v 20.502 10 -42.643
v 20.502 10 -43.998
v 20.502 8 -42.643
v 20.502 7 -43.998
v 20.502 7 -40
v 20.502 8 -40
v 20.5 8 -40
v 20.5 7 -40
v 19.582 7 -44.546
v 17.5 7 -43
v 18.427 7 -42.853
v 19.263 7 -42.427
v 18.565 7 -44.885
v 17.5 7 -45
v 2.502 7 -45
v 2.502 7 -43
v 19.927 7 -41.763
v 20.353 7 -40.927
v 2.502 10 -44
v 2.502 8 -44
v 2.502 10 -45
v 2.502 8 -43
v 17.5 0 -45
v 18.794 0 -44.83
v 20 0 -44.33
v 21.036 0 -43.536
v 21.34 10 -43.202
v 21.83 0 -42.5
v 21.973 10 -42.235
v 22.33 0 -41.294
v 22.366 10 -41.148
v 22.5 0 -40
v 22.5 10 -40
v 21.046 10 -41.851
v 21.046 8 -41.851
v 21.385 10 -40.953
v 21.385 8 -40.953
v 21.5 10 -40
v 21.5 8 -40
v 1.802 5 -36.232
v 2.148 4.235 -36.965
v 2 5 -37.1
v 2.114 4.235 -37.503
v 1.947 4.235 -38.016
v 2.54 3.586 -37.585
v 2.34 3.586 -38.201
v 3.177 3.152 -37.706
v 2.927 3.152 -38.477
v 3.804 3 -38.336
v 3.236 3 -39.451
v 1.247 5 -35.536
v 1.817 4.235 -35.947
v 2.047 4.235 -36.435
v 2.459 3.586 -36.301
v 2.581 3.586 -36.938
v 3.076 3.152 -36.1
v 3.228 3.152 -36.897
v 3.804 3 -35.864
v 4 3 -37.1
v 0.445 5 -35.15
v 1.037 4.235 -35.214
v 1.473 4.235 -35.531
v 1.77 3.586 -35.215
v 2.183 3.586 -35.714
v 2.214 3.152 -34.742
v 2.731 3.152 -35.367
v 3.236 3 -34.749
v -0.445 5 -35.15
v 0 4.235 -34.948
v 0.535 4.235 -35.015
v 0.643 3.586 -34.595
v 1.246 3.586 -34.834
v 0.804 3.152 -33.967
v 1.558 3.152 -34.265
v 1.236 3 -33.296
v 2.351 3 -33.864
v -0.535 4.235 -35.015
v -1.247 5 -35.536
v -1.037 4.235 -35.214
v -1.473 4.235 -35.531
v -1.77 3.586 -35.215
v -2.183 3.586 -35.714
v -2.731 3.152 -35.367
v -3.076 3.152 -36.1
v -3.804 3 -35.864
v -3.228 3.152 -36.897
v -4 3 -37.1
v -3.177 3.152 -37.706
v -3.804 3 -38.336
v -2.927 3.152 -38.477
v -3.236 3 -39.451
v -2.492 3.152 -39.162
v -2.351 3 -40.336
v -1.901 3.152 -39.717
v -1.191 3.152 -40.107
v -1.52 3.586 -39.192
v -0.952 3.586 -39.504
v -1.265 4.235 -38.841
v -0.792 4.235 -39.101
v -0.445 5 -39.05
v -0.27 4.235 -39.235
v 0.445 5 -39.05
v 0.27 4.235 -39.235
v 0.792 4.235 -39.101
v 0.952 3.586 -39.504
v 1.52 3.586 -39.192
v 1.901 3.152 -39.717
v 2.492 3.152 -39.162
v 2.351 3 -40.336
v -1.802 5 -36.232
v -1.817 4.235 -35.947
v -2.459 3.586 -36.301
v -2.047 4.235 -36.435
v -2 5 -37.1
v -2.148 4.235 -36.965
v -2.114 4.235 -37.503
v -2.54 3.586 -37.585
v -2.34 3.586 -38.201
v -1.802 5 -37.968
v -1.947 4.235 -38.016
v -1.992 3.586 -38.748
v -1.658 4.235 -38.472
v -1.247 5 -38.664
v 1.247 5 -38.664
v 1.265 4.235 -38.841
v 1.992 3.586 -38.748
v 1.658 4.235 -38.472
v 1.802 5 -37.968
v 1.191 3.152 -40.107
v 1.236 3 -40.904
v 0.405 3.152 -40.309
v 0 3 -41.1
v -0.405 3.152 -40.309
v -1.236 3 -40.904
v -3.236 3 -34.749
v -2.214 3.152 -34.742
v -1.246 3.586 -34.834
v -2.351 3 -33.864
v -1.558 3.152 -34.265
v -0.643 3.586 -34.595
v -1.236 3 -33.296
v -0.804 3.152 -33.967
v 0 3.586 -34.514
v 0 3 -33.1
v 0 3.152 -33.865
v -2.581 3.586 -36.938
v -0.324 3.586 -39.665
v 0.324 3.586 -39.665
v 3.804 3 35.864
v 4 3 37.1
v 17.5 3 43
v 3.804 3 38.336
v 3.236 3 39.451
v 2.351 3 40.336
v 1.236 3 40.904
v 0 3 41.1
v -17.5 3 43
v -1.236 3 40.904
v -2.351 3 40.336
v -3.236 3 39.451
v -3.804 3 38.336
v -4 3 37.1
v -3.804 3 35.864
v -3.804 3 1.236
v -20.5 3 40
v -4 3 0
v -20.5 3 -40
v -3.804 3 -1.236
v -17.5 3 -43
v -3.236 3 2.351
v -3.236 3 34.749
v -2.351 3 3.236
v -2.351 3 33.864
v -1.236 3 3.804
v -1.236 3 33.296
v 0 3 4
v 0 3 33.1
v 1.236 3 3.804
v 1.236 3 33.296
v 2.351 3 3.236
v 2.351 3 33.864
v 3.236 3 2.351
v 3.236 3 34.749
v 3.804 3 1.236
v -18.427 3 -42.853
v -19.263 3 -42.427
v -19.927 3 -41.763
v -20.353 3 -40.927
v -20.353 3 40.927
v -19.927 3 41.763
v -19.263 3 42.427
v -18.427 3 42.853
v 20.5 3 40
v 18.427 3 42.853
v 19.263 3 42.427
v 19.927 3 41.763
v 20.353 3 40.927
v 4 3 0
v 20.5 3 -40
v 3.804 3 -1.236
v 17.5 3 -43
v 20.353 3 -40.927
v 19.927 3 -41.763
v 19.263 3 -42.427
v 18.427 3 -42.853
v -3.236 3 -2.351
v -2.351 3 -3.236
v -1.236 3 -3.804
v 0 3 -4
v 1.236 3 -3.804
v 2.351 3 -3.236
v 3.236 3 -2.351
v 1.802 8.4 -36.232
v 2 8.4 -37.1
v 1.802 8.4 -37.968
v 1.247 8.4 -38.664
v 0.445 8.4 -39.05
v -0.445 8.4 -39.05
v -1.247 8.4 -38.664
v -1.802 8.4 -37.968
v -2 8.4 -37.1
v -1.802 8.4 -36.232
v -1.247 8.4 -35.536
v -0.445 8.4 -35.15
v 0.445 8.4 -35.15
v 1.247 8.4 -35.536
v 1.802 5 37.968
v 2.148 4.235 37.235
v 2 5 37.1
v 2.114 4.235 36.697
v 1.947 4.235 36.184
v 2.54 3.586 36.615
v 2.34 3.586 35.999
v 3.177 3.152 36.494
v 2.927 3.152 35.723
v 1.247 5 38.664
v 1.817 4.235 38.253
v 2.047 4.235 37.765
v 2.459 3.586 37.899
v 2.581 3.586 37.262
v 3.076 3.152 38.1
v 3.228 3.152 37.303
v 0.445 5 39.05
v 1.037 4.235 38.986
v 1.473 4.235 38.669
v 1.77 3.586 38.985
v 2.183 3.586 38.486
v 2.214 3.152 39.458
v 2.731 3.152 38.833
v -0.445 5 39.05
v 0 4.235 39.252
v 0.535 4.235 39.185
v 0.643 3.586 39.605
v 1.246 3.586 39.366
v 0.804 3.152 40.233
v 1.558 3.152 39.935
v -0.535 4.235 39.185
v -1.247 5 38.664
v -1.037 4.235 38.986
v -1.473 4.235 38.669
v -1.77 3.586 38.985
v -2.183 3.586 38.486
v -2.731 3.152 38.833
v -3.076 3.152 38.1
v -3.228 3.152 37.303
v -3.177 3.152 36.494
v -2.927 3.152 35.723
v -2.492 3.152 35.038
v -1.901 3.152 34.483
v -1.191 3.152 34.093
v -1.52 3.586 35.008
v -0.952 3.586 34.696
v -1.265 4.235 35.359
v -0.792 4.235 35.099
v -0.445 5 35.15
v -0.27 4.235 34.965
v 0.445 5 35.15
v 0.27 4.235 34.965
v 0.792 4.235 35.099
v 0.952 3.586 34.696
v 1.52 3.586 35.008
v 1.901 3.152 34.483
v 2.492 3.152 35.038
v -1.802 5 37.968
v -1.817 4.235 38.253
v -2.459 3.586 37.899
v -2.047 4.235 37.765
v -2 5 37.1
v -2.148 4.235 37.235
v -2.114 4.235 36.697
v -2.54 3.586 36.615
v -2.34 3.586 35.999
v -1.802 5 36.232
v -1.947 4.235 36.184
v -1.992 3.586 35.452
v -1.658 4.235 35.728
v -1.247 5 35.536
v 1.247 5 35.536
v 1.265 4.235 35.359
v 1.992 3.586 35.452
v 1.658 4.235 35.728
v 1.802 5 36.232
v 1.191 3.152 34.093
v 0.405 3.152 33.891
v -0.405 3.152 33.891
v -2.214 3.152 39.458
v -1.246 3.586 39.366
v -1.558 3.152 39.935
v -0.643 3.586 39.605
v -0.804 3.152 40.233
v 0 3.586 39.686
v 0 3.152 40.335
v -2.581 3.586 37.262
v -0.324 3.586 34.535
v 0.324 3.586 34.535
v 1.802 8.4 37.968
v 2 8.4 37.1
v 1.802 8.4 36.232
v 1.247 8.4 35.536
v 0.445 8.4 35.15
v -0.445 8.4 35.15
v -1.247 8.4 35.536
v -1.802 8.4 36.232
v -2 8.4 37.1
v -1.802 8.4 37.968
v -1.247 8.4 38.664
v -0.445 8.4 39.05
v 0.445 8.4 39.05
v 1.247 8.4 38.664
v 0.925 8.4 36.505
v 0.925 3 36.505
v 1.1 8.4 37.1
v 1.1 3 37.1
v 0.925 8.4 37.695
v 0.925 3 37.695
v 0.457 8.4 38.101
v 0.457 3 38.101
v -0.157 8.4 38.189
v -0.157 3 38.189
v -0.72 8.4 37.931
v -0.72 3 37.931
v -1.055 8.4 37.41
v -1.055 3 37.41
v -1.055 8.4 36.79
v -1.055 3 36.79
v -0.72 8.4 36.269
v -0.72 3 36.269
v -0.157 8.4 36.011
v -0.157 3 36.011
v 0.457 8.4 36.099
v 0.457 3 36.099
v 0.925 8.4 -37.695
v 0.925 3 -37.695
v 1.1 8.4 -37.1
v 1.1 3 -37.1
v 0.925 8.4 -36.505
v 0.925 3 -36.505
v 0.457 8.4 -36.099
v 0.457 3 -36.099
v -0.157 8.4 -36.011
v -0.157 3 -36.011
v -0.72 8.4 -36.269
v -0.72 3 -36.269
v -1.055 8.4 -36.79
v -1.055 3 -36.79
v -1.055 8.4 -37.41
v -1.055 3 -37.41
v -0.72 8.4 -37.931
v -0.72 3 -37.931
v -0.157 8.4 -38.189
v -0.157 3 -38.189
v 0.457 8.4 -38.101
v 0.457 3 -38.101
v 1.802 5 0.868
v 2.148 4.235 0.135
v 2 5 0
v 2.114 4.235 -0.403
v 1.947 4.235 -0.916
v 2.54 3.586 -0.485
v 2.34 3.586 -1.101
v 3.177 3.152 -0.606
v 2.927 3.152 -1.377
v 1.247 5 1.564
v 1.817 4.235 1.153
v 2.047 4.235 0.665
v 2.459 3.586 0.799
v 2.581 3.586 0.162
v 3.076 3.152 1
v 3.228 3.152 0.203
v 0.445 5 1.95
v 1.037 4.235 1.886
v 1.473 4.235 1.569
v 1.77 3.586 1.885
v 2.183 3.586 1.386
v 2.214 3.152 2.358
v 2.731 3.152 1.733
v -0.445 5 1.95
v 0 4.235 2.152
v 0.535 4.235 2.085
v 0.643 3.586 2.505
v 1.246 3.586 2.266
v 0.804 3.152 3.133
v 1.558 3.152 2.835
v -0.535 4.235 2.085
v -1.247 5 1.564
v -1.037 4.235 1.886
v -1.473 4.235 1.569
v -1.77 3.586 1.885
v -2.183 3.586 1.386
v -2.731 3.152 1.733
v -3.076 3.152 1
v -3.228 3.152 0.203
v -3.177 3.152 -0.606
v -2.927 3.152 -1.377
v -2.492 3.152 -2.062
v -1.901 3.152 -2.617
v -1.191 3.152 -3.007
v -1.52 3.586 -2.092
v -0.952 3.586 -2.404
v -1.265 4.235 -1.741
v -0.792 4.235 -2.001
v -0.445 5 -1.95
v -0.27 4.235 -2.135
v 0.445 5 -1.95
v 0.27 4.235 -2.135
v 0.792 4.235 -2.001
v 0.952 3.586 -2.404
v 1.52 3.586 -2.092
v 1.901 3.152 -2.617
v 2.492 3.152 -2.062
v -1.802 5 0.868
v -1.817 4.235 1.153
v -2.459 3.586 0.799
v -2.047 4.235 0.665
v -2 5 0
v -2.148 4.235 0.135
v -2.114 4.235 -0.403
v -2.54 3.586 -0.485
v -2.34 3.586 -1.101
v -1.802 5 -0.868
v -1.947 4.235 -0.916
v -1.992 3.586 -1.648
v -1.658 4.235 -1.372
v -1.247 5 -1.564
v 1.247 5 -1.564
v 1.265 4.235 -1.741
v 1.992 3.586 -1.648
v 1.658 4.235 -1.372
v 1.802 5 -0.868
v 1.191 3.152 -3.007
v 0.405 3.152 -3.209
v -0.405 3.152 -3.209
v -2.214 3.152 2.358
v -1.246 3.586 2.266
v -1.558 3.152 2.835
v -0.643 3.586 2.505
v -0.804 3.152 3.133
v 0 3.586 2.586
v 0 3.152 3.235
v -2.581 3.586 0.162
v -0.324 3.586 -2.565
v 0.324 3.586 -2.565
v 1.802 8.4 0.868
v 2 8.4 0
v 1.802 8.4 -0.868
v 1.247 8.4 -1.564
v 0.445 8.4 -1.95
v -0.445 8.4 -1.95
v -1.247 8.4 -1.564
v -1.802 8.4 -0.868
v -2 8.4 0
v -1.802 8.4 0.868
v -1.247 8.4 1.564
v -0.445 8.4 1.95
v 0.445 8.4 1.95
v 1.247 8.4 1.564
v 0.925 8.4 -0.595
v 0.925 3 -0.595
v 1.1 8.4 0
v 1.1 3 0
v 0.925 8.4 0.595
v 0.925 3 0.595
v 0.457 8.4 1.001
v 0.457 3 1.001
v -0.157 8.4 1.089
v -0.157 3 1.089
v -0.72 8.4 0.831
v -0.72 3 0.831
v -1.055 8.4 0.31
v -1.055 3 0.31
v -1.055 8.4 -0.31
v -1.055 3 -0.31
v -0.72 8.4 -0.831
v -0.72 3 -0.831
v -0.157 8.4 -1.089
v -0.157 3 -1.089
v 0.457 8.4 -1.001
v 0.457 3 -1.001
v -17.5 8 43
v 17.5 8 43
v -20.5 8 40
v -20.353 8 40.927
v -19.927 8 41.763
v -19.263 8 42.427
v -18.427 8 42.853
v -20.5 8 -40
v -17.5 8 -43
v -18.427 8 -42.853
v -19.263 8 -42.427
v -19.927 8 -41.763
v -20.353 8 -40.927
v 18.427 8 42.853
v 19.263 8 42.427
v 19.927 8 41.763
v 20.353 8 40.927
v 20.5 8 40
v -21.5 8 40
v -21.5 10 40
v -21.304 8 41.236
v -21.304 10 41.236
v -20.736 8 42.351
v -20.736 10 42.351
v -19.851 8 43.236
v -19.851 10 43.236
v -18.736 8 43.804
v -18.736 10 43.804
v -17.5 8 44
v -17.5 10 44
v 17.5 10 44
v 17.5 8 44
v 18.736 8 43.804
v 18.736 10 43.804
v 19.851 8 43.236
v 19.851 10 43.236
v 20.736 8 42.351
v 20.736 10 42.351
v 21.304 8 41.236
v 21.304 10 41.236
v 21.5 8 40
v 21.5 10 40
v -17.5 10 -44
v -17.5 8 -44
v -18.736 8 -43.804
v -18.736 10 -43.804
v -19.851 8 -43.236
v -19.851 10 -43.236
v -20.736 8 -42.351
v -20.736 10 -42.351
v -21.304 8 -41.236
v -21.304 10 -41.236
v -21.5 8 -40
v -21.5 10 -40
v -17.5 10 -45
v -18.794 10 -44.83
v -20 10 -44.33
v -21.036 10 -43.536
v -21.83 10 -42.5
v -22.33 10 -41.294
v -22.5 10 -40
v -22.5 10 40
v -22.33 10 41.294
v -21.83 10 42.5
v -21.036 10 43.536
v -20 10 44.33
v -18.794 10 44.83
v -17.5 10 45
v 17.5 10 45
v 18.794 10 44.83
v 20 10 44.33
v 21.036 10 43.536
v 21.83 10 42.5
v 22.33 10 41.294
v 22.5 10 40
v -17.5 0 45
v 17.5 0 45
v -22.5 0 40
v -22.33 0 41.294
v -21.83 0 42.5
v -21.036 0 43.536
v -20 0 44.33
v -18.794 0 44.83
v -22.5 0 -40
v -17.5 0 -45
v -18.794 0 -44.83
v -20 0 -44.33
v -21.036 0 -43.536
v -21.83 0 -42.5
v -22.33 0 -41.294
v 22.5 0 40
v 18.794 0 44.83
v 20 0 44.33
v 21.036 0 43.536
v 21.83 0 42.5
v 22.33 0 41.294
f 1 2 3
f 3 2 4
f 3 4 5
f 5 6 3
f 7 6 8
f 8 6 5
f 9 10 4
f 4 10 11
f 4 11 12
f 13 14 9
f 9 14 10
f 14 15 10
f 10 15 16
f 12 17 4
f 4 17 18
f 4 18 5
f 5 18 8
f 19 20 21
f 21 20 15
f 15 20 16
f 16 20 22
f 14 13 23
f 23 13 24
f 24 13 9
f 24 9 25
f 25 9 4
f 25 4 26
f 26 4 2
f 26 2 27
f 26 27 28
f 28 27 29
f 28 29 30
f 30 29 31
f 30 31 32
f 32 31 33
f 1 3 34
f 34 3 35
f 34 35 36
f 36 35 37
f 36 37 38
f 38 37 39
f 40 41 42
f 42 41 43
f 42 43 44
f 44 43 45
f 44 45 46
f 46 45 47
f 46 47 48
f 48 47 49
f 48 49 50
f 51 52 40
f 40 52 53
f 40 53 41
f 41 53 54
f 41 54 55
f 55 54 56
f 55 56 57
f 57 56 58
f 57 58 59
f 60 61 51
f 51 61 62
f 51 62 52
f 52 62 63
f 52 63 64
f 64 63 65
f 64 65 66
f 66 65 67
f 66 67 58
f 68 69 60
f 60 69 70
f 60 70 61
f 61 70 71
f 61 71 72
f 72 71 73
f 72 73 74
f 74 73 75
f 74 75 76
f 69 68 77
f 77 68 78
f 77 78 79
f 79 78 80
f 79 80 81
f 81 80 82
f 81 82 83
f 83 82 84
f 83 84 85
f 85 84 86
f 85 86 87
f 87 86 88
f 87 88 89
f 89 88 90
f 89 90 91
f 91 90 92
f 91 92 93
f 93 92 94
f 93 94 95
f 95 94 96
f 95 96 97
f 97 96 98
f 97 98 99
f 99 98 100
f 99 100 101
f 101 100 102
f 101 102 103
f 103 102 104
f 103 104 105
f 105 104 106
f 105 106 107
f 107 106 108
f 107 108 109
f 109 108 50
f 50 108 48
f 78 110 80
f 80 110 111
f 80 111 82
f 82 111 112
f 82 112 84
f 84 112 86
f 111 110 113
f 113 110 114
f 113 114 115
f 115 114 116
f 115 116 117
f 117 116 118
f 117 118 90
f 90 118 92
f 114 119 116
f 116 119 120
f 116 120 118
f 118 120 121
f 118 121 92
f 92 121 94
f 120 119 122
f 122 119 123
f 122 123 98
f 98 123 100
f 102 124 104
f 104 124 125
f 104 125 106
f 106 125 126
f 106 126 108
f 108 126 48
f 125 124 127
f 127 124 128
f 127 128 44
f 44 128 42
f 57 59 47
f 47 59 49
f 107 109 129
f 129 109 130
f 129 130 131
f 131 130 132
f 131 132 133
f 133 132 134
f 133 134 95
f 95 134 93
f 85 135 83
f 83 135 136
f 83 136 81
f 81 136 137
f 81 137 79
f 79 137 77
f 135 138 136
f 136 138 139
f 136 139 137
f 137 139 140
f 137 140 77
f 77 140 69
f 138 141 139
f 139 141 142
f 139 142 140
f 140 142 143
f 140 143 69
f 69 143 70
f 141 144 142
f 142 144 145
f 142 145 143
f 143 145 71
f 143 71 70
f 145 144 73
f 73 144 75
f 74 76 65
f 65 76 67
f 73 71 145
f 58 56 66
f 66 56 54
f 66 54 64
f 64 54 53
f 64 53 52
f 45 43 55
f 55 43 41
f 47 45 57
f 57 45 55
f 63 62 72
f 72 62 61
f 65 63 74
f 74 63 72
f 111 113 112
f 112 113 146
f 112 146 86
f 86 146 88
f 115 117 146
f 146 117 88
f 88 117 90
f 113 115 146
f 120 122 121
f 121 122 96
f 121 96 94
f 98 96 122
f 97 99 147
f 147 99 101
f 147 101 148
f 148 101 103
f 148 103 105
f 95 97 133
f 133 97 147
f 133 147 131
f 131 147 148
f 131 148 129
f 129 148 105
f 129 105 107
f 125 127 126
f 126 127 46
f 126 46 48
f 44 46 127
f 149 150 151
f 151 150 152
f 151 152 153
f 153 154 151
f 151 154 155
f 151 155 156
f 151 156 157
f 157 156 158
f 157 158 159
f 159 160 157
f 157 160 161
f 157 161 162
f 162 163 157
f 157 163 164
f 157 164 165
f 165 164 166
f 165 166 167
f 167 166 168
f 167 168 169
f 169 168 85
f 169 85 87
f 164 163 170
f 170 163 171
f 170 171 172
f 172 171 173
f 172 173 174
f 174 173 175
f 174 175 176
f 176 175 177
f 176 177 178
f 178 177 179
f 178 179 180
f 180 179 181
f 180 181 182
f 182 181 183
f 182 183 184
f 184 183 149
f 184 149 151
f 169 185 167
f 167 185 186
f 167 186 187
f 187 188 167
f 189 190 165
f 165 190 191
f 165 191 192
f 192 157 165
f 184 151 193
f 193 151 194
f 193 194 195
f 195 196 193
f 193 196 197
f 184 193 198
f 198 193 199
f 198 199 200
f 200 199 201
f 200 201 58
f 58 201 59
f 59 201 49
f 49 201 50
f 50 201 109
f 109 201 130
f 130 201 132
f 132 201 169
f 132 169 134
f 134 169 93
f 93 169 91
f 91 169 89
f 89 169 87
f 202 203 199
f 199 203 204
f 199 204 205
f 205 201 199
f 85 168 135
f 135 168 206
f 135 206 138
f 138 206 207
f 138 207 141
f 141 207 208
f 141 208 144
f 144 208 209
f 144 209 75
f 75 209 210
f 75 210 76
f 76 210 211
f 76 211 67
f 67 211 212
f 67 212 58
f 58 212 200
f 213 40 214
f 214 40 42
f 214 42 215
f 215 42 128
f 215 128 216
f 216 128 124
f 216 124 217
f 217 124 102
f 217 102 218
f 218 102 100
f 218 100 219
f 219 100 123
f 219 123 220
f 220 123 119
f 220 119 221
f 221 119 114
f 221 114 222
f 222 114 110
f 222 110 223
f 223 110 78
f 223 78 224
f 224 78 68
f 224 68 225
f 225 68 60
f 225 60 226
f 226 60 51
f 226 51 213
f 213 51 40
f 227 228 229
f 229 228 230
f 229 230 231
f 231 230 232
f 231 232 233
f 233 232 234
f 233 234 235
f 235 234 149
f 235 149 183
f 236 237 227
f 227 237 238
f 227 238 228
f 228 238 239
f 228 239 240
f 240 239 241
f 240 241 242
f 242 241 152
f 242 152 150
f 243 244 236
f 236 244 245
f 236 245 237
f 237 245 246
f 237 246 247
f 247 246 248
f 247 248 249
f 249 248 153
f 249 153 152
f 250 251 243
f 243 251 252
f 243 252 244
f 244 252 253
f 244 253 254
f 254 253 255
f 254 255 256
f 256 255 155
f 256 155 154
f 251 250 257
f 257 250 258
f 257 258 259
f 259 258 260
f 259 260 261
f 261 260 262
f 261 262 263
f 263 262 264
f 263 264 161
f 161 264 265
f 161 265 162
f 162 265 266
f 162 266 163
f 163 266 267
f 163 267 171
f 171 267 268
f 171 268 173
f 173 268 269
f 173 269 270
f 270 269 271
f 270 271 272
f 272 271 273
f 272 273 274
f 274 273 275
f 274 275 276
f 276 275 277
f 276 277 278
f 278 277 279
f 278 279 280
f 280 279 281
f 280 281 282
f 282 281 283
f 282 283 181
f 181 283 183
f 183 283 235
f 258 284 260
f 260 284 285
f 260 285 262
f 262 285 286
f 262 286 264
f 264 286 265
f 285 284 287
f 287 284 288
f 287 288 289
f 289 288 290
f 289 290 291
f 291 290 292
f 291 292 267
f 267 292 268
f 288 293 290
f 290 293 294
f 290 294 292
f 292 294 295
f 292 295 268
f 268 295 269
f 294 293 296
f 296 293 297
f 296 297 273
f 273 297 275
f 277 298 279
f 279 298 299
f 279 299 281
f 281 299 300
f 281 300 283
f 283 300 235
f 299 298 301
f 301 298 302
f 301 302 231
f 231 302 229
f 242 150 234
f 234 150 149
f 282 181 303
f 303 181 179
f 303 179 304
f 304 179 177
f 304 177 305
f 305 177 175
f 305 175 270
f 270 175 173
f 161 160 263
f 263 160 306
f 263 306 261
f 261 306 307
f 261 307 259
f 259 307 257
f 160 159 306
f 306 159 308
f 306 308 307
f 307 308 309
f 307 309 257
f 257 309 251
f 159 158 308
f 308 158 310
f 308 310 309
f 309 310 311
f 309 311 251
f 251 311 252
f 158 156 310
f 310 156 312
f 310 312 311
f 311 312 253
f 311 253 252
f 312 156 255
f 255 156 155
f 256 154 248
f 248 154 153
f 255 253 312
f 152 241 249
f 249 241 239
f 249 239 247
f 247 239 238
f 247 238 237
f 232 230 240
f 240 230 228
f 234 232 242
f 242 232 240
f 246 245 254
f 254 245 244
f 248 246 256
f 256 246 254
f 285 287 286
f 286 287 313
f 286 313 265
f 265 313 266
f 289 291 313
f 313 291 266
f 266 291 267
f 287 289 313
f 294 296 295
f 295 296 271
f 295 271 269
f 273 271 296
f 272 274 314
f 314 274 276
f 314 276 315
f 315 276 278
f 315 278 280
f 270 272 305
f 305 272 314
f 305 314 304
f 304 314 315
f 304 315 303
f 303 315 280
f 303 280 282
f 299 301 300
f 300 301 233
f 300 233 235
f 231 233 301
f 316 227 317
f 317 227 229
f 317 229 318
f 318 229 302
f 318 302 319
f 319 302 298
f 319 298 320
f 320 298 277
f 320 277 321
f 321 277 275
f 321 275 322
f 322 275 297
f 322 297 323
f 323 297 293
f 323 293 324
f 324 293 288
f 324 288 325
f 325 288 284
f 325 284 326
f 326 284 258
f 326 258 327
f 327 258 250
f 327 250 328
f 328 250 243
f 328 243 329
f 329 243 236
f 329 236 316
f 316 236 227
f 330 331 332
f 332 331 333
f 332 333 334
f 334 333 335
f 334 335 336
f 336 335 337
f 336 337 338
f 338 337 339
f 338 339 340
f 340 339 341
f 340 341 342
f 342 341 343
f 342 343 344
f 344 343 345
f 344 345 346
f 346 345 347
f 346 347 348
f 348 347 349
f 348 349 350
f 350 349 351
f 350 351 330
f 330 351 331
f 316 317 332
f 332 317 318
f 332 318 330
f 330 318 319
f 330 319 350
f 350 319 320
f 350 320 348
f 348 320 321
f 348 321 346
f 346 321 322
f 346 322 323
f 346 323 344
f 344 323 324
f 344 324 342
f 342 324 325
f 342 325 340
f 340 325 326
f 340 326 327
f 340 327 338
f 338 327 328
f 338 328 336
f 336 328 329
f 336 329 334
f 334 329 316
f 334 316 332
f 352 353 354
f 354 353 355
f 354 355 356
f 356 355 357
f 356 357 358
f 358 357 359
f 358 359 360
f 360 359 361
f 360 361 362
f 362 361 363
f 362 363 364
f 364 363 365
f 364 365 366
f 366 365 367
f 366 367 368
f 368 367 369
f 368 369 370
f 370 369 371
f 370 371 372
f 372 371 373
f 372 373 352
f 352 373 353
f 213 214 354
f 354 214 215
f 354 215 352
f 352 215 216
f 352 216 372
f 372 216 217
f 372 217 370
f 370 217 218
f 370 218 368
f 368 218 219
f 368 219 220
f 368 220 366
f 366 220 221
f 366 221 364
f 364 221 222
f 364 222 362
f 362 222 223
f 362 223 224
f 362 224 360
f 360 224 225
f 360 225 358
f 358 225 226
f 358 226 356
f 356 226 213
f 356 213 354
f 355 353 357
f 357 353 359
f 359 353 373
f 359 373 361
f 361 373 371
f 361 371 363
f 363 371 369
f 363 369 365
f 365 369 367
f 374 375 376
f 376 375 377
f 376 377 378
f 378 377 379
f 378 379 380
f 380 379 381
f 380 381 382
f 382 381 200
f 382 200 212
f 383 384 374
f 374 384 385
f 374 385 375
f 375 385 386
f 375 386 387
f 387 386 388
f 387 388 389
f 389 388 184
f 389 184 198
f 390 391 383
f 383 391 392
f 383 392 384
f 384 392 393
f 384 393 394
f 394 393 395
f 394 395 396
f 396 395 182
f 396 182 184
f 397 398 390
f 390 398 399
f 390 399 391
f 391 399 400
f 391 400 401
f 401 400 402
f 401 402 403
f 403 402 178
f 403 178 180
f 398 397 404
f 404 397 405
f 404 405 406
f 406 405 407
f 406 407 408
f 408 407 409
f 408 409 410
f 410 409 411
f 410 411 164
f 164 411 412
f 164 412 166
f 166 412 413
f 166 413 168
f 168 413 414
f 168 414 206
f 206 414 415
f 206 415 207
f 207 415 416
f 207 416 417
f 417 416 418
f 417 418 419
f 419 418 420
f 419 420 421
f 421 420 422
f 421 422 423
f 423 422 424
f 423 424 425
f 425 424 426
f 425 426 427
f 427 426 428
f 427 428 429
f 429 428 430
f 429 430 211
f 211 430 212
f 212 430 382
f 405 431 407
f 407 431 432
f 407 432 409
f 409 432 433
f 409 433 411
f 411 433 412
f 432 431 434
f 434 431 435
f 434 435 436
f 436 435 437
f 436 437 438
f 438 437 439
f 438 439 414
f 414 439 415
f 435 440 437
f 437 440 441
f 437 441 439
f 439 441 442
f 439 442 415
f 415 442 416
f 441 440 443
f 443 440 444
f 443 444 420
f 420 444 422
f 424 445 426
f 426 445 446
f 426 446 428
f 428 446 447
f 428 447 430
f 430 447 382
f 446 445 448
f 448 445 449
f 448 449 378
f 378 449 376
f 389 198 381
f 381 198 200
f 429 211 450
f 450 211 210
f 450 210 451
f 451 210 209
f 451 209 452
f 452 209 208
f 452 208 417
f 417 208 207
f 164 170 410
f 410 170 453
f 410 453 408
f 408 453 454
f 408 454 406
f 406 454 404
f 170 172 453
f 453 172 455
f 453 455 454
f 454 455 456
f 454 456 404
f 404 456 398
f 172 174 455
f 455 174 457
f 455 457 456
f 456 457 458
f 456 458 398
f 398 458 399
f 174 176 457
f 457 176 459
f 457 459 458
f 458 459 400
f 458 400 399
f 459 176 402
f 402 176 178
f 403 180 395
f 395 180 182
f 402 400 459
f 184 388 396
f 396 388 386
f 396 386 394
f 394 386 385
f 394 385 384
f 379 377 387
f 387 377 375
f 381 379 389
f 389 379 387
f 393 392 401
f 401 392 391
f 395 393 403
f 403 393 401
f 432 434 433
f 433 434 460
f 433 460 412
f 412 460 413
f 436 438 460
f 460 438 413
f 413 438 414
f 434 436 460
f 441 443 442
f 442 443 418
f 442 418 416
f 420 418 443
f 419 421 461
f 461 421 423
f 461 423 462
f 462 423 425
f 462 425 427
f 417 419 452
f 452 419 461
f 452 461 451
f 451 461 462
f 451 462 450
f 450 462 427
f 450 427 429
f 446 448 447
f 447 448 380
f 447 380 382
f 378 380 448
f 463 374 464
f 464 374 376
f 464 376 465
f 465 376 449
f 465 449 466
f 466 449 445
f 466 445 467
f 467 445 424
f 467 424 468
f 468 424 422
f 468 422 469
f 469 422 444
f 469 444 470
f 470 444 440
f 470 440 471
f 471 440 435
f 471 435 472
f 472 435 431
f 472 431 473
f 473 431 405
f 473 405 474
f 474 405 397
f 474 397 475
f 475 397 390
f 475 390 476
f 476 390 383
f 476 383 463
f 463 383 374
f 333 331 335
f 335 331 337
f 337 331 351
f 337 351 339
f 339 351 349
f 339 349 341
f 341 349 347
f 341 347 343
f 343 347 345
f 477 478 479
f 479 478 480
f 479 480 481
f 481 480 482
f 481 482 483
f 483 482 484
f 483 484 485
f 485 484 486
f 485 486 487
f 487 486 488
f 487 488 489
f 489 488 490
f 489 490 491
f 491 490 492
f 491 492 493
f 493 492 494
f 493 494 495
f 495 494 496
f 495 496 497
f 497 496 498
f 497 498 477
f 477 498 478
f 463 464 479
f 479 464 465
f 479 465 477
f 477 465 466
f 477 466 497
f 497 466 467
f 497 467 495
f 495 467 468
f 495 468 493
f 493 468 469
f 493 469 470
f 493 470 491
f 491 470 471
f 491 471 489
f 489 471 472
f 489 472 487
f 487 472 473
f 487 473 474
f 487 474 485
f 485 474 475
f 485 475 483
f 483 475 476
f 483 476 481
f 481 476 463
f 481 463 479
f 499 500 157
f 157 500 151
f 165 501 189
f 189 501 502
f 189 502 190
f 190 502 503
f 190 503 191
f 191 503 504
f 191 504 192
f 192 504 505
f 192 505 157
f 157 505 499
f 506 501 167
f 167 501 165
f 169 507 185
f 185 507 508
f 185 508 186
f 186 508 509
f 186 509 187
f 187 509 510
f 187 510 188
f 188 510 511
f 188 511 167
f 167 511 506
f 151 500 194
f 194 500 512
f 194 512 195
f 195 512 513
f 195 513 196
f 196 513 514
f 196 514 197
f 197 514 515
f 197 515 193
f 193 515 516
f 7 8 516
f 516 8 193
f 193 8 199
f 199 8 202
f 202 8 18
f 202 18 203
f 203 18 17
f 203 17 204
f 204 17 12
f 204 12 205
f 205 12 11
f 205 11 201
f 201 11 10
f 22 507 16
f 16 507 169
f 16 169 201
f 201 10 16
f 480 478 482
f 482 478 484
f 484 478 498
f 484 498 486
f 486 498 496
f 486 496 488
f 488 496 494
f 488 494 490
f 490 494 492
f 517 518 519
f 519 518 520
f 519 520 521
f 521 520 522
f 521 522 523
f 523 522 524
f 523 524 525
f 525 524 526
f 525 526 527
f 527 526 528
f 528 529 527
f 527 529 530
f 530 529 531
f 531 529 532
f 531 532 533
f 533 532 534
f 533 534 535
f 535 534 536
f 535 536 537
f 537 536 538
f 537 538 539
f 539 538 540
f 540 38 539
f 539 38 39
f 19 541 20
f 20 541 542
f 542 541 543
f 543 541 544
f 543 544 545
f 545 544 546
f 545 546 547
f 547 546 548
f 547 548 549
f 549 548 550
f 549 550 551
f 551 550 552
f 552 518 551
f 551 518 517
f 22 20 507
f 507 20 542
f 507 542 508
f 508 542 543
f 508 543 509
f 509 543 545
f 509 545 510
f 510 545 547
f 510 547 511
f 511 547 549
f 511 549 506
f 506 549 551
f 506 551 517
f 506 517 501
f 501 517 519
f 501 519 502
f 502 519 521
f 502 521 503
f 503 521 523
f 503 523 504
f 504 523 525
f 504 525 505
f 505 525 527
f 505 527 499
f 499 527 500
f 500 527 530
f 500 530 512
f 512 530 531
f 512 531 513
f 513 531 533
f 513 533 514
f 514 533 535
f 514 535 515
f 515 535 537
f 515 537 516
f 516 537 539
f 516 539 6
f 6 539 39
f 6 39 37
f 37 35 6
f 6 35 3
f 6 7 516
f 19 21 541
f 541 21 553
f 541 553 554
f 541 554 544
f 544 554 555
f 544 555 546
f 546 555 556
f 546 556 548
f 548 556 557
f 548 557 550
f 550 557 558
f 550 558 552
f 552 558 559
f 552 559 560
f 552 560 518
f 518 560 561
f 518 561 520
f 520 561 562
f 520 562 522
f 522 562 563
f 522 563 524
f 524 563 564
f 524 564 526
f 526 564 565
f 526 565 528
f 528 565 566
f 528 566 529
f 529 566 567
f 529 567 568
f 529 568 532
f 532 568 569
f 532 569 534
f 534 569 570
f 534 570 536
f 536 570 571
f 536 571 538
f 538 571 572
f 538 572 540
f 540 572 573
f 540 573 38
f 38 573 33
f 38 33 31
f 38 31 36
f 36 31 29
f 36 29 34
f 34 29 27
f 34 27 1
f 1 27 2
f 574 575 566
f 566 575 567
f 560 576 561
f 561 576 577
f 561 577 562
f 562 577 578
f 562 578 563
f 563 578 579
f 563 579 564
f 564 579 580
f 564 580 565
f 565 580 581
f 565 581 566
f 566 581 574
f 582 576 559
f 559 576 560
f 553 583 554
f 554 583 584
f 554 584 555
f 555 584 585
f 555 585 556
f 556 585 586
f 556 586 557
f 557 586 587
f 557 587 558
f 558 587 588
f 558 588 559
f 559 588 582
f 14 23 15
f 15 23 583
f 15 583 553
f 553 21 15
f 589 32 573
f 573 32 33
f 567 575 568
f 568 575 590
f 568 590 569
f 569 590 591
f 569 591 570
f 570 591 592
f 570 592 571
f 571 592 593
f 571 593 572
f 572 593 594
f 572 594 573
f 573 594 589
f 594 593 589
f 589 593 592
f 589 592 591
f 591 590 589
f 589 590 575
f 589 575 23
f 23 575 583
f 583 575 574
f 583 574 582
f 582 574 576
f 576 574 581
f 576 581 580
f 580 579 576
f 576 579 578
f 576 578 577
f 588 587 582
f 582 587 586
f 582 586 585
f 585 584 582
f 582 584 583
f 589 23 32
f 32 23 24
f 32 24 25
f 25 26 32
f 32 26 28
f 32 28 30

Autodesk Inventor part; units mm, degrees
ref_plane "YZ Plane" through (0, 0, 0) normal (1, 0, 0) x (0, 1, 0)
ref_plane "XZ Plane" through (0, 0, 0) normal (0, 1, 0) x (-1, 0, 0)
ref_plane "XY Plane" through (0, 0, 0) normal (0, 0, 1) x (1, 0, 0)
sketch "Boceto1" plane through (0, 0, 0) normal (0, 1, 0) x (-1, 0, 0)
  line L0 (17.5, 45) -> (-17.5, 45)
  line L1 (-22.5, 40) -> (-22.5, -40)
  line L2 (-17.5, -45) -> (17.5, -45)
  line L3 (22.5, -40) -> (22.5, 40)
  line L4 (22.5, 45) -> (-22.5, -45) construction
  line L5 (-22.5, 45) -> (22.5, -45) construction
  arc A0 (22.5, 40) -> (17.5, 45) centre (17.5, 40) ccw
  arc A1 (-17.5, 45) -> (-22.5, 40) centre (-17.5, 40) ccw
  arc A2 (-22.5, -40) -> (-17.5, -45) centre (-17.5, -40) ccw
  arc A3 (17.5, -45) -> (22.5, -40) centre (17.5, -40) ccw
  point P0 (0, 0)
  dimension "d0" = 45
  dimension "d1" = 90
  dimension "d2" = 5
extrude "Extrusión1" add sketch "Boceto1" along normal blind 10
sketch "Boceto2" plane through (0, 10, 0) normal (0, 1, 0) x (1, 0, 0)
  arc A0 (17.5, -45) -> (22.5, -40) centre (17.5, -40) ccw projected
  line L0 (22.5, -40) -> (22.5, 40) projected
  arc A1 (22.5, 40) -> (17.5, 45) centre (17.5, 40) ccw projected
  line L1 (17.5, 45) -> (-17.5, 45) projected
  arc A2 (-17.5, 45) -> (-22.5, 40) centre (-17.5, 40) ccw projected
  line L2 (-22.5, 40) -> (-22.5, -40) projected
  arc A3 (-22.5, -40) -> (-17.5, -45) centre (-17.5, -40) ccw projected
  line L3 (-17.5, -45) -> (17.5, -45) projected
  arc A4 (-21.5, -40) -> (-17.5, -44) centre (-17.5, -40) ccw
  line L4 (-21.5, -40) -> (-21.5, 40)
  arc A5 (-17.5, 44) -> (-21.5, 40) centre (-17.5, 40) ccw
  line L5 (-17.5, 44) -> (17.5, 44)
  arc A6 (21.5, 40) -> (17.5, 44) centre (17.5, 40) ccw
  line L6 (21.5, 40) -> (21.5, -40)
  arc A7 (17.5, -44) -> (21.5, -40) centre (17.5, -40) ccw
  line L7 (17.5, -44) -> (-17.5, -44)
  line L8 (-20.5, 40) -> (-20.5, -40)
  arc A8 (-20.5, -40) -> (-17.5, -43) centre (-17.5, -40) ccw
  line L9 (-17.5, -43) -> (17.5, -43)
  arc A9 (17.5, -43) -> (20.5, -40) centre (17.5, -40) ccw
  line L10 (20.5, -40) -> (20.5, 40)
  arc A10 (20.5, 40) -> (17.5, 43) centre (17.5, 40) ccw
  line L11 (17.5, 43) -> (-17.5, 43)
  arc A11 (-17.5, 43) -> (-20.5, 40) centre (-17.5, 40) ccw
  point P0 (0, 0)
  dimension "d5" = 1
  dimension "d6" = 1
extrude "Extrusión2" cut sketch "Boceto2" against normal blind 2 contours L4 A5 L5 A6 L6 A7 L7 A4
sketch "Boceto3" plane through (0, 10, 0) normal (0, 1, 0) x (1, 0, 0)
  line L0 (17.5, 43) -> (-17.5, 43) projected
  arc A0 (-17.5, 43) -> (-20.5, 40) centre (-17.5, 40) ccw projected
  line L1 (-20.5, 40) -> (-20.5, -40) projected
  arc A1 (-20.5, -40) -> (-17.5, -43) centre (-17.5, -40) ccw projected
  line L2 (-17.5, -43) -> (17.5, -43) projected
  arc A2 (17.5, -43) -> (20.5, -40) centre (17.5, -40) ccw projected
  line L3 (20.5, -40) -> (20.5, 40) projected
  arc A3 (20.5, 40) -> (17.5, 43) centre (17.5, 40) ccw projected
  point P0 (0, 0)
extrude "Extrusión3" cut sketch "Boceto3" against normal blind 7
sketch "Boceto4" plane through (0, 3, 0) normal (0, 1, 0) x (1, 0, 0)
  circle A0 centre (0, 0) radius 2
  circle A1 centre (0, 0) radius 1.1
  dimension "d11" = 4
  dimension "d12" = 2.2
extrude "Extrusión4" add sketch "Boceto4" along normal blind 5.4
fillet "Empalme1" radius 2 1 edges at (-2, 3, 0)
sketch "Boceto5" plane through (0, 3, 0) normal (0, 1, 0) x (1, 0, 0)
  line L0 (17.5, -43) -> (-17.5, -43) construction
  line L1 (0, -43) -> (0, -37.1) construction
  line L2 (-17.5, 43) -> (17.5, 43) construction
  line L3 (0, 43) -> (0, 37.1) construction
  circle A0 centre (0, -37.1) radius 2
  circle A1 centre (0, -37.1) radius 1.1
  circle A2 centre (0, 37.1) radius 2
  circle A3 centre (0, 37.1) radius 1.1
  point P0 (0, 0)
  dimension "d16" = 5.9
  dimension "d17" = 5.9
  dimension "d18" = 4
  dimension "d19" = 2.2
  dimension "d20" = 4
  dimension "d21" = 2.2
extrude "Extrusión5" add sketch "Boceto5" along normal blind 5.4
fillet "Empalme2" radius 2 2 edges at (-2, 3, 37.1) (-2, 3, -37.1)
sketch "Sketch10" plane through (17.5, 0, -45) normal (0, 0, -1) x (-1, 0, 0)
  line L0 (-3.0024, 10) -> (14.9976, 10)
  line L1 (14.9976, 10) -> (14.9976, 7)
  line L2 (14.9976, 7) -> (-3.0024, 7)
  line L3 (-3.0024, 7) -> (-3.0024, 10)
  point P0 (17.5, 0)
  dimension "d37" = 18
  dimension "d38" = 3
extrude "Extrusion10" cut sketch "Sketch10" against normal blind 5
properties part number "Pieza_baja"
